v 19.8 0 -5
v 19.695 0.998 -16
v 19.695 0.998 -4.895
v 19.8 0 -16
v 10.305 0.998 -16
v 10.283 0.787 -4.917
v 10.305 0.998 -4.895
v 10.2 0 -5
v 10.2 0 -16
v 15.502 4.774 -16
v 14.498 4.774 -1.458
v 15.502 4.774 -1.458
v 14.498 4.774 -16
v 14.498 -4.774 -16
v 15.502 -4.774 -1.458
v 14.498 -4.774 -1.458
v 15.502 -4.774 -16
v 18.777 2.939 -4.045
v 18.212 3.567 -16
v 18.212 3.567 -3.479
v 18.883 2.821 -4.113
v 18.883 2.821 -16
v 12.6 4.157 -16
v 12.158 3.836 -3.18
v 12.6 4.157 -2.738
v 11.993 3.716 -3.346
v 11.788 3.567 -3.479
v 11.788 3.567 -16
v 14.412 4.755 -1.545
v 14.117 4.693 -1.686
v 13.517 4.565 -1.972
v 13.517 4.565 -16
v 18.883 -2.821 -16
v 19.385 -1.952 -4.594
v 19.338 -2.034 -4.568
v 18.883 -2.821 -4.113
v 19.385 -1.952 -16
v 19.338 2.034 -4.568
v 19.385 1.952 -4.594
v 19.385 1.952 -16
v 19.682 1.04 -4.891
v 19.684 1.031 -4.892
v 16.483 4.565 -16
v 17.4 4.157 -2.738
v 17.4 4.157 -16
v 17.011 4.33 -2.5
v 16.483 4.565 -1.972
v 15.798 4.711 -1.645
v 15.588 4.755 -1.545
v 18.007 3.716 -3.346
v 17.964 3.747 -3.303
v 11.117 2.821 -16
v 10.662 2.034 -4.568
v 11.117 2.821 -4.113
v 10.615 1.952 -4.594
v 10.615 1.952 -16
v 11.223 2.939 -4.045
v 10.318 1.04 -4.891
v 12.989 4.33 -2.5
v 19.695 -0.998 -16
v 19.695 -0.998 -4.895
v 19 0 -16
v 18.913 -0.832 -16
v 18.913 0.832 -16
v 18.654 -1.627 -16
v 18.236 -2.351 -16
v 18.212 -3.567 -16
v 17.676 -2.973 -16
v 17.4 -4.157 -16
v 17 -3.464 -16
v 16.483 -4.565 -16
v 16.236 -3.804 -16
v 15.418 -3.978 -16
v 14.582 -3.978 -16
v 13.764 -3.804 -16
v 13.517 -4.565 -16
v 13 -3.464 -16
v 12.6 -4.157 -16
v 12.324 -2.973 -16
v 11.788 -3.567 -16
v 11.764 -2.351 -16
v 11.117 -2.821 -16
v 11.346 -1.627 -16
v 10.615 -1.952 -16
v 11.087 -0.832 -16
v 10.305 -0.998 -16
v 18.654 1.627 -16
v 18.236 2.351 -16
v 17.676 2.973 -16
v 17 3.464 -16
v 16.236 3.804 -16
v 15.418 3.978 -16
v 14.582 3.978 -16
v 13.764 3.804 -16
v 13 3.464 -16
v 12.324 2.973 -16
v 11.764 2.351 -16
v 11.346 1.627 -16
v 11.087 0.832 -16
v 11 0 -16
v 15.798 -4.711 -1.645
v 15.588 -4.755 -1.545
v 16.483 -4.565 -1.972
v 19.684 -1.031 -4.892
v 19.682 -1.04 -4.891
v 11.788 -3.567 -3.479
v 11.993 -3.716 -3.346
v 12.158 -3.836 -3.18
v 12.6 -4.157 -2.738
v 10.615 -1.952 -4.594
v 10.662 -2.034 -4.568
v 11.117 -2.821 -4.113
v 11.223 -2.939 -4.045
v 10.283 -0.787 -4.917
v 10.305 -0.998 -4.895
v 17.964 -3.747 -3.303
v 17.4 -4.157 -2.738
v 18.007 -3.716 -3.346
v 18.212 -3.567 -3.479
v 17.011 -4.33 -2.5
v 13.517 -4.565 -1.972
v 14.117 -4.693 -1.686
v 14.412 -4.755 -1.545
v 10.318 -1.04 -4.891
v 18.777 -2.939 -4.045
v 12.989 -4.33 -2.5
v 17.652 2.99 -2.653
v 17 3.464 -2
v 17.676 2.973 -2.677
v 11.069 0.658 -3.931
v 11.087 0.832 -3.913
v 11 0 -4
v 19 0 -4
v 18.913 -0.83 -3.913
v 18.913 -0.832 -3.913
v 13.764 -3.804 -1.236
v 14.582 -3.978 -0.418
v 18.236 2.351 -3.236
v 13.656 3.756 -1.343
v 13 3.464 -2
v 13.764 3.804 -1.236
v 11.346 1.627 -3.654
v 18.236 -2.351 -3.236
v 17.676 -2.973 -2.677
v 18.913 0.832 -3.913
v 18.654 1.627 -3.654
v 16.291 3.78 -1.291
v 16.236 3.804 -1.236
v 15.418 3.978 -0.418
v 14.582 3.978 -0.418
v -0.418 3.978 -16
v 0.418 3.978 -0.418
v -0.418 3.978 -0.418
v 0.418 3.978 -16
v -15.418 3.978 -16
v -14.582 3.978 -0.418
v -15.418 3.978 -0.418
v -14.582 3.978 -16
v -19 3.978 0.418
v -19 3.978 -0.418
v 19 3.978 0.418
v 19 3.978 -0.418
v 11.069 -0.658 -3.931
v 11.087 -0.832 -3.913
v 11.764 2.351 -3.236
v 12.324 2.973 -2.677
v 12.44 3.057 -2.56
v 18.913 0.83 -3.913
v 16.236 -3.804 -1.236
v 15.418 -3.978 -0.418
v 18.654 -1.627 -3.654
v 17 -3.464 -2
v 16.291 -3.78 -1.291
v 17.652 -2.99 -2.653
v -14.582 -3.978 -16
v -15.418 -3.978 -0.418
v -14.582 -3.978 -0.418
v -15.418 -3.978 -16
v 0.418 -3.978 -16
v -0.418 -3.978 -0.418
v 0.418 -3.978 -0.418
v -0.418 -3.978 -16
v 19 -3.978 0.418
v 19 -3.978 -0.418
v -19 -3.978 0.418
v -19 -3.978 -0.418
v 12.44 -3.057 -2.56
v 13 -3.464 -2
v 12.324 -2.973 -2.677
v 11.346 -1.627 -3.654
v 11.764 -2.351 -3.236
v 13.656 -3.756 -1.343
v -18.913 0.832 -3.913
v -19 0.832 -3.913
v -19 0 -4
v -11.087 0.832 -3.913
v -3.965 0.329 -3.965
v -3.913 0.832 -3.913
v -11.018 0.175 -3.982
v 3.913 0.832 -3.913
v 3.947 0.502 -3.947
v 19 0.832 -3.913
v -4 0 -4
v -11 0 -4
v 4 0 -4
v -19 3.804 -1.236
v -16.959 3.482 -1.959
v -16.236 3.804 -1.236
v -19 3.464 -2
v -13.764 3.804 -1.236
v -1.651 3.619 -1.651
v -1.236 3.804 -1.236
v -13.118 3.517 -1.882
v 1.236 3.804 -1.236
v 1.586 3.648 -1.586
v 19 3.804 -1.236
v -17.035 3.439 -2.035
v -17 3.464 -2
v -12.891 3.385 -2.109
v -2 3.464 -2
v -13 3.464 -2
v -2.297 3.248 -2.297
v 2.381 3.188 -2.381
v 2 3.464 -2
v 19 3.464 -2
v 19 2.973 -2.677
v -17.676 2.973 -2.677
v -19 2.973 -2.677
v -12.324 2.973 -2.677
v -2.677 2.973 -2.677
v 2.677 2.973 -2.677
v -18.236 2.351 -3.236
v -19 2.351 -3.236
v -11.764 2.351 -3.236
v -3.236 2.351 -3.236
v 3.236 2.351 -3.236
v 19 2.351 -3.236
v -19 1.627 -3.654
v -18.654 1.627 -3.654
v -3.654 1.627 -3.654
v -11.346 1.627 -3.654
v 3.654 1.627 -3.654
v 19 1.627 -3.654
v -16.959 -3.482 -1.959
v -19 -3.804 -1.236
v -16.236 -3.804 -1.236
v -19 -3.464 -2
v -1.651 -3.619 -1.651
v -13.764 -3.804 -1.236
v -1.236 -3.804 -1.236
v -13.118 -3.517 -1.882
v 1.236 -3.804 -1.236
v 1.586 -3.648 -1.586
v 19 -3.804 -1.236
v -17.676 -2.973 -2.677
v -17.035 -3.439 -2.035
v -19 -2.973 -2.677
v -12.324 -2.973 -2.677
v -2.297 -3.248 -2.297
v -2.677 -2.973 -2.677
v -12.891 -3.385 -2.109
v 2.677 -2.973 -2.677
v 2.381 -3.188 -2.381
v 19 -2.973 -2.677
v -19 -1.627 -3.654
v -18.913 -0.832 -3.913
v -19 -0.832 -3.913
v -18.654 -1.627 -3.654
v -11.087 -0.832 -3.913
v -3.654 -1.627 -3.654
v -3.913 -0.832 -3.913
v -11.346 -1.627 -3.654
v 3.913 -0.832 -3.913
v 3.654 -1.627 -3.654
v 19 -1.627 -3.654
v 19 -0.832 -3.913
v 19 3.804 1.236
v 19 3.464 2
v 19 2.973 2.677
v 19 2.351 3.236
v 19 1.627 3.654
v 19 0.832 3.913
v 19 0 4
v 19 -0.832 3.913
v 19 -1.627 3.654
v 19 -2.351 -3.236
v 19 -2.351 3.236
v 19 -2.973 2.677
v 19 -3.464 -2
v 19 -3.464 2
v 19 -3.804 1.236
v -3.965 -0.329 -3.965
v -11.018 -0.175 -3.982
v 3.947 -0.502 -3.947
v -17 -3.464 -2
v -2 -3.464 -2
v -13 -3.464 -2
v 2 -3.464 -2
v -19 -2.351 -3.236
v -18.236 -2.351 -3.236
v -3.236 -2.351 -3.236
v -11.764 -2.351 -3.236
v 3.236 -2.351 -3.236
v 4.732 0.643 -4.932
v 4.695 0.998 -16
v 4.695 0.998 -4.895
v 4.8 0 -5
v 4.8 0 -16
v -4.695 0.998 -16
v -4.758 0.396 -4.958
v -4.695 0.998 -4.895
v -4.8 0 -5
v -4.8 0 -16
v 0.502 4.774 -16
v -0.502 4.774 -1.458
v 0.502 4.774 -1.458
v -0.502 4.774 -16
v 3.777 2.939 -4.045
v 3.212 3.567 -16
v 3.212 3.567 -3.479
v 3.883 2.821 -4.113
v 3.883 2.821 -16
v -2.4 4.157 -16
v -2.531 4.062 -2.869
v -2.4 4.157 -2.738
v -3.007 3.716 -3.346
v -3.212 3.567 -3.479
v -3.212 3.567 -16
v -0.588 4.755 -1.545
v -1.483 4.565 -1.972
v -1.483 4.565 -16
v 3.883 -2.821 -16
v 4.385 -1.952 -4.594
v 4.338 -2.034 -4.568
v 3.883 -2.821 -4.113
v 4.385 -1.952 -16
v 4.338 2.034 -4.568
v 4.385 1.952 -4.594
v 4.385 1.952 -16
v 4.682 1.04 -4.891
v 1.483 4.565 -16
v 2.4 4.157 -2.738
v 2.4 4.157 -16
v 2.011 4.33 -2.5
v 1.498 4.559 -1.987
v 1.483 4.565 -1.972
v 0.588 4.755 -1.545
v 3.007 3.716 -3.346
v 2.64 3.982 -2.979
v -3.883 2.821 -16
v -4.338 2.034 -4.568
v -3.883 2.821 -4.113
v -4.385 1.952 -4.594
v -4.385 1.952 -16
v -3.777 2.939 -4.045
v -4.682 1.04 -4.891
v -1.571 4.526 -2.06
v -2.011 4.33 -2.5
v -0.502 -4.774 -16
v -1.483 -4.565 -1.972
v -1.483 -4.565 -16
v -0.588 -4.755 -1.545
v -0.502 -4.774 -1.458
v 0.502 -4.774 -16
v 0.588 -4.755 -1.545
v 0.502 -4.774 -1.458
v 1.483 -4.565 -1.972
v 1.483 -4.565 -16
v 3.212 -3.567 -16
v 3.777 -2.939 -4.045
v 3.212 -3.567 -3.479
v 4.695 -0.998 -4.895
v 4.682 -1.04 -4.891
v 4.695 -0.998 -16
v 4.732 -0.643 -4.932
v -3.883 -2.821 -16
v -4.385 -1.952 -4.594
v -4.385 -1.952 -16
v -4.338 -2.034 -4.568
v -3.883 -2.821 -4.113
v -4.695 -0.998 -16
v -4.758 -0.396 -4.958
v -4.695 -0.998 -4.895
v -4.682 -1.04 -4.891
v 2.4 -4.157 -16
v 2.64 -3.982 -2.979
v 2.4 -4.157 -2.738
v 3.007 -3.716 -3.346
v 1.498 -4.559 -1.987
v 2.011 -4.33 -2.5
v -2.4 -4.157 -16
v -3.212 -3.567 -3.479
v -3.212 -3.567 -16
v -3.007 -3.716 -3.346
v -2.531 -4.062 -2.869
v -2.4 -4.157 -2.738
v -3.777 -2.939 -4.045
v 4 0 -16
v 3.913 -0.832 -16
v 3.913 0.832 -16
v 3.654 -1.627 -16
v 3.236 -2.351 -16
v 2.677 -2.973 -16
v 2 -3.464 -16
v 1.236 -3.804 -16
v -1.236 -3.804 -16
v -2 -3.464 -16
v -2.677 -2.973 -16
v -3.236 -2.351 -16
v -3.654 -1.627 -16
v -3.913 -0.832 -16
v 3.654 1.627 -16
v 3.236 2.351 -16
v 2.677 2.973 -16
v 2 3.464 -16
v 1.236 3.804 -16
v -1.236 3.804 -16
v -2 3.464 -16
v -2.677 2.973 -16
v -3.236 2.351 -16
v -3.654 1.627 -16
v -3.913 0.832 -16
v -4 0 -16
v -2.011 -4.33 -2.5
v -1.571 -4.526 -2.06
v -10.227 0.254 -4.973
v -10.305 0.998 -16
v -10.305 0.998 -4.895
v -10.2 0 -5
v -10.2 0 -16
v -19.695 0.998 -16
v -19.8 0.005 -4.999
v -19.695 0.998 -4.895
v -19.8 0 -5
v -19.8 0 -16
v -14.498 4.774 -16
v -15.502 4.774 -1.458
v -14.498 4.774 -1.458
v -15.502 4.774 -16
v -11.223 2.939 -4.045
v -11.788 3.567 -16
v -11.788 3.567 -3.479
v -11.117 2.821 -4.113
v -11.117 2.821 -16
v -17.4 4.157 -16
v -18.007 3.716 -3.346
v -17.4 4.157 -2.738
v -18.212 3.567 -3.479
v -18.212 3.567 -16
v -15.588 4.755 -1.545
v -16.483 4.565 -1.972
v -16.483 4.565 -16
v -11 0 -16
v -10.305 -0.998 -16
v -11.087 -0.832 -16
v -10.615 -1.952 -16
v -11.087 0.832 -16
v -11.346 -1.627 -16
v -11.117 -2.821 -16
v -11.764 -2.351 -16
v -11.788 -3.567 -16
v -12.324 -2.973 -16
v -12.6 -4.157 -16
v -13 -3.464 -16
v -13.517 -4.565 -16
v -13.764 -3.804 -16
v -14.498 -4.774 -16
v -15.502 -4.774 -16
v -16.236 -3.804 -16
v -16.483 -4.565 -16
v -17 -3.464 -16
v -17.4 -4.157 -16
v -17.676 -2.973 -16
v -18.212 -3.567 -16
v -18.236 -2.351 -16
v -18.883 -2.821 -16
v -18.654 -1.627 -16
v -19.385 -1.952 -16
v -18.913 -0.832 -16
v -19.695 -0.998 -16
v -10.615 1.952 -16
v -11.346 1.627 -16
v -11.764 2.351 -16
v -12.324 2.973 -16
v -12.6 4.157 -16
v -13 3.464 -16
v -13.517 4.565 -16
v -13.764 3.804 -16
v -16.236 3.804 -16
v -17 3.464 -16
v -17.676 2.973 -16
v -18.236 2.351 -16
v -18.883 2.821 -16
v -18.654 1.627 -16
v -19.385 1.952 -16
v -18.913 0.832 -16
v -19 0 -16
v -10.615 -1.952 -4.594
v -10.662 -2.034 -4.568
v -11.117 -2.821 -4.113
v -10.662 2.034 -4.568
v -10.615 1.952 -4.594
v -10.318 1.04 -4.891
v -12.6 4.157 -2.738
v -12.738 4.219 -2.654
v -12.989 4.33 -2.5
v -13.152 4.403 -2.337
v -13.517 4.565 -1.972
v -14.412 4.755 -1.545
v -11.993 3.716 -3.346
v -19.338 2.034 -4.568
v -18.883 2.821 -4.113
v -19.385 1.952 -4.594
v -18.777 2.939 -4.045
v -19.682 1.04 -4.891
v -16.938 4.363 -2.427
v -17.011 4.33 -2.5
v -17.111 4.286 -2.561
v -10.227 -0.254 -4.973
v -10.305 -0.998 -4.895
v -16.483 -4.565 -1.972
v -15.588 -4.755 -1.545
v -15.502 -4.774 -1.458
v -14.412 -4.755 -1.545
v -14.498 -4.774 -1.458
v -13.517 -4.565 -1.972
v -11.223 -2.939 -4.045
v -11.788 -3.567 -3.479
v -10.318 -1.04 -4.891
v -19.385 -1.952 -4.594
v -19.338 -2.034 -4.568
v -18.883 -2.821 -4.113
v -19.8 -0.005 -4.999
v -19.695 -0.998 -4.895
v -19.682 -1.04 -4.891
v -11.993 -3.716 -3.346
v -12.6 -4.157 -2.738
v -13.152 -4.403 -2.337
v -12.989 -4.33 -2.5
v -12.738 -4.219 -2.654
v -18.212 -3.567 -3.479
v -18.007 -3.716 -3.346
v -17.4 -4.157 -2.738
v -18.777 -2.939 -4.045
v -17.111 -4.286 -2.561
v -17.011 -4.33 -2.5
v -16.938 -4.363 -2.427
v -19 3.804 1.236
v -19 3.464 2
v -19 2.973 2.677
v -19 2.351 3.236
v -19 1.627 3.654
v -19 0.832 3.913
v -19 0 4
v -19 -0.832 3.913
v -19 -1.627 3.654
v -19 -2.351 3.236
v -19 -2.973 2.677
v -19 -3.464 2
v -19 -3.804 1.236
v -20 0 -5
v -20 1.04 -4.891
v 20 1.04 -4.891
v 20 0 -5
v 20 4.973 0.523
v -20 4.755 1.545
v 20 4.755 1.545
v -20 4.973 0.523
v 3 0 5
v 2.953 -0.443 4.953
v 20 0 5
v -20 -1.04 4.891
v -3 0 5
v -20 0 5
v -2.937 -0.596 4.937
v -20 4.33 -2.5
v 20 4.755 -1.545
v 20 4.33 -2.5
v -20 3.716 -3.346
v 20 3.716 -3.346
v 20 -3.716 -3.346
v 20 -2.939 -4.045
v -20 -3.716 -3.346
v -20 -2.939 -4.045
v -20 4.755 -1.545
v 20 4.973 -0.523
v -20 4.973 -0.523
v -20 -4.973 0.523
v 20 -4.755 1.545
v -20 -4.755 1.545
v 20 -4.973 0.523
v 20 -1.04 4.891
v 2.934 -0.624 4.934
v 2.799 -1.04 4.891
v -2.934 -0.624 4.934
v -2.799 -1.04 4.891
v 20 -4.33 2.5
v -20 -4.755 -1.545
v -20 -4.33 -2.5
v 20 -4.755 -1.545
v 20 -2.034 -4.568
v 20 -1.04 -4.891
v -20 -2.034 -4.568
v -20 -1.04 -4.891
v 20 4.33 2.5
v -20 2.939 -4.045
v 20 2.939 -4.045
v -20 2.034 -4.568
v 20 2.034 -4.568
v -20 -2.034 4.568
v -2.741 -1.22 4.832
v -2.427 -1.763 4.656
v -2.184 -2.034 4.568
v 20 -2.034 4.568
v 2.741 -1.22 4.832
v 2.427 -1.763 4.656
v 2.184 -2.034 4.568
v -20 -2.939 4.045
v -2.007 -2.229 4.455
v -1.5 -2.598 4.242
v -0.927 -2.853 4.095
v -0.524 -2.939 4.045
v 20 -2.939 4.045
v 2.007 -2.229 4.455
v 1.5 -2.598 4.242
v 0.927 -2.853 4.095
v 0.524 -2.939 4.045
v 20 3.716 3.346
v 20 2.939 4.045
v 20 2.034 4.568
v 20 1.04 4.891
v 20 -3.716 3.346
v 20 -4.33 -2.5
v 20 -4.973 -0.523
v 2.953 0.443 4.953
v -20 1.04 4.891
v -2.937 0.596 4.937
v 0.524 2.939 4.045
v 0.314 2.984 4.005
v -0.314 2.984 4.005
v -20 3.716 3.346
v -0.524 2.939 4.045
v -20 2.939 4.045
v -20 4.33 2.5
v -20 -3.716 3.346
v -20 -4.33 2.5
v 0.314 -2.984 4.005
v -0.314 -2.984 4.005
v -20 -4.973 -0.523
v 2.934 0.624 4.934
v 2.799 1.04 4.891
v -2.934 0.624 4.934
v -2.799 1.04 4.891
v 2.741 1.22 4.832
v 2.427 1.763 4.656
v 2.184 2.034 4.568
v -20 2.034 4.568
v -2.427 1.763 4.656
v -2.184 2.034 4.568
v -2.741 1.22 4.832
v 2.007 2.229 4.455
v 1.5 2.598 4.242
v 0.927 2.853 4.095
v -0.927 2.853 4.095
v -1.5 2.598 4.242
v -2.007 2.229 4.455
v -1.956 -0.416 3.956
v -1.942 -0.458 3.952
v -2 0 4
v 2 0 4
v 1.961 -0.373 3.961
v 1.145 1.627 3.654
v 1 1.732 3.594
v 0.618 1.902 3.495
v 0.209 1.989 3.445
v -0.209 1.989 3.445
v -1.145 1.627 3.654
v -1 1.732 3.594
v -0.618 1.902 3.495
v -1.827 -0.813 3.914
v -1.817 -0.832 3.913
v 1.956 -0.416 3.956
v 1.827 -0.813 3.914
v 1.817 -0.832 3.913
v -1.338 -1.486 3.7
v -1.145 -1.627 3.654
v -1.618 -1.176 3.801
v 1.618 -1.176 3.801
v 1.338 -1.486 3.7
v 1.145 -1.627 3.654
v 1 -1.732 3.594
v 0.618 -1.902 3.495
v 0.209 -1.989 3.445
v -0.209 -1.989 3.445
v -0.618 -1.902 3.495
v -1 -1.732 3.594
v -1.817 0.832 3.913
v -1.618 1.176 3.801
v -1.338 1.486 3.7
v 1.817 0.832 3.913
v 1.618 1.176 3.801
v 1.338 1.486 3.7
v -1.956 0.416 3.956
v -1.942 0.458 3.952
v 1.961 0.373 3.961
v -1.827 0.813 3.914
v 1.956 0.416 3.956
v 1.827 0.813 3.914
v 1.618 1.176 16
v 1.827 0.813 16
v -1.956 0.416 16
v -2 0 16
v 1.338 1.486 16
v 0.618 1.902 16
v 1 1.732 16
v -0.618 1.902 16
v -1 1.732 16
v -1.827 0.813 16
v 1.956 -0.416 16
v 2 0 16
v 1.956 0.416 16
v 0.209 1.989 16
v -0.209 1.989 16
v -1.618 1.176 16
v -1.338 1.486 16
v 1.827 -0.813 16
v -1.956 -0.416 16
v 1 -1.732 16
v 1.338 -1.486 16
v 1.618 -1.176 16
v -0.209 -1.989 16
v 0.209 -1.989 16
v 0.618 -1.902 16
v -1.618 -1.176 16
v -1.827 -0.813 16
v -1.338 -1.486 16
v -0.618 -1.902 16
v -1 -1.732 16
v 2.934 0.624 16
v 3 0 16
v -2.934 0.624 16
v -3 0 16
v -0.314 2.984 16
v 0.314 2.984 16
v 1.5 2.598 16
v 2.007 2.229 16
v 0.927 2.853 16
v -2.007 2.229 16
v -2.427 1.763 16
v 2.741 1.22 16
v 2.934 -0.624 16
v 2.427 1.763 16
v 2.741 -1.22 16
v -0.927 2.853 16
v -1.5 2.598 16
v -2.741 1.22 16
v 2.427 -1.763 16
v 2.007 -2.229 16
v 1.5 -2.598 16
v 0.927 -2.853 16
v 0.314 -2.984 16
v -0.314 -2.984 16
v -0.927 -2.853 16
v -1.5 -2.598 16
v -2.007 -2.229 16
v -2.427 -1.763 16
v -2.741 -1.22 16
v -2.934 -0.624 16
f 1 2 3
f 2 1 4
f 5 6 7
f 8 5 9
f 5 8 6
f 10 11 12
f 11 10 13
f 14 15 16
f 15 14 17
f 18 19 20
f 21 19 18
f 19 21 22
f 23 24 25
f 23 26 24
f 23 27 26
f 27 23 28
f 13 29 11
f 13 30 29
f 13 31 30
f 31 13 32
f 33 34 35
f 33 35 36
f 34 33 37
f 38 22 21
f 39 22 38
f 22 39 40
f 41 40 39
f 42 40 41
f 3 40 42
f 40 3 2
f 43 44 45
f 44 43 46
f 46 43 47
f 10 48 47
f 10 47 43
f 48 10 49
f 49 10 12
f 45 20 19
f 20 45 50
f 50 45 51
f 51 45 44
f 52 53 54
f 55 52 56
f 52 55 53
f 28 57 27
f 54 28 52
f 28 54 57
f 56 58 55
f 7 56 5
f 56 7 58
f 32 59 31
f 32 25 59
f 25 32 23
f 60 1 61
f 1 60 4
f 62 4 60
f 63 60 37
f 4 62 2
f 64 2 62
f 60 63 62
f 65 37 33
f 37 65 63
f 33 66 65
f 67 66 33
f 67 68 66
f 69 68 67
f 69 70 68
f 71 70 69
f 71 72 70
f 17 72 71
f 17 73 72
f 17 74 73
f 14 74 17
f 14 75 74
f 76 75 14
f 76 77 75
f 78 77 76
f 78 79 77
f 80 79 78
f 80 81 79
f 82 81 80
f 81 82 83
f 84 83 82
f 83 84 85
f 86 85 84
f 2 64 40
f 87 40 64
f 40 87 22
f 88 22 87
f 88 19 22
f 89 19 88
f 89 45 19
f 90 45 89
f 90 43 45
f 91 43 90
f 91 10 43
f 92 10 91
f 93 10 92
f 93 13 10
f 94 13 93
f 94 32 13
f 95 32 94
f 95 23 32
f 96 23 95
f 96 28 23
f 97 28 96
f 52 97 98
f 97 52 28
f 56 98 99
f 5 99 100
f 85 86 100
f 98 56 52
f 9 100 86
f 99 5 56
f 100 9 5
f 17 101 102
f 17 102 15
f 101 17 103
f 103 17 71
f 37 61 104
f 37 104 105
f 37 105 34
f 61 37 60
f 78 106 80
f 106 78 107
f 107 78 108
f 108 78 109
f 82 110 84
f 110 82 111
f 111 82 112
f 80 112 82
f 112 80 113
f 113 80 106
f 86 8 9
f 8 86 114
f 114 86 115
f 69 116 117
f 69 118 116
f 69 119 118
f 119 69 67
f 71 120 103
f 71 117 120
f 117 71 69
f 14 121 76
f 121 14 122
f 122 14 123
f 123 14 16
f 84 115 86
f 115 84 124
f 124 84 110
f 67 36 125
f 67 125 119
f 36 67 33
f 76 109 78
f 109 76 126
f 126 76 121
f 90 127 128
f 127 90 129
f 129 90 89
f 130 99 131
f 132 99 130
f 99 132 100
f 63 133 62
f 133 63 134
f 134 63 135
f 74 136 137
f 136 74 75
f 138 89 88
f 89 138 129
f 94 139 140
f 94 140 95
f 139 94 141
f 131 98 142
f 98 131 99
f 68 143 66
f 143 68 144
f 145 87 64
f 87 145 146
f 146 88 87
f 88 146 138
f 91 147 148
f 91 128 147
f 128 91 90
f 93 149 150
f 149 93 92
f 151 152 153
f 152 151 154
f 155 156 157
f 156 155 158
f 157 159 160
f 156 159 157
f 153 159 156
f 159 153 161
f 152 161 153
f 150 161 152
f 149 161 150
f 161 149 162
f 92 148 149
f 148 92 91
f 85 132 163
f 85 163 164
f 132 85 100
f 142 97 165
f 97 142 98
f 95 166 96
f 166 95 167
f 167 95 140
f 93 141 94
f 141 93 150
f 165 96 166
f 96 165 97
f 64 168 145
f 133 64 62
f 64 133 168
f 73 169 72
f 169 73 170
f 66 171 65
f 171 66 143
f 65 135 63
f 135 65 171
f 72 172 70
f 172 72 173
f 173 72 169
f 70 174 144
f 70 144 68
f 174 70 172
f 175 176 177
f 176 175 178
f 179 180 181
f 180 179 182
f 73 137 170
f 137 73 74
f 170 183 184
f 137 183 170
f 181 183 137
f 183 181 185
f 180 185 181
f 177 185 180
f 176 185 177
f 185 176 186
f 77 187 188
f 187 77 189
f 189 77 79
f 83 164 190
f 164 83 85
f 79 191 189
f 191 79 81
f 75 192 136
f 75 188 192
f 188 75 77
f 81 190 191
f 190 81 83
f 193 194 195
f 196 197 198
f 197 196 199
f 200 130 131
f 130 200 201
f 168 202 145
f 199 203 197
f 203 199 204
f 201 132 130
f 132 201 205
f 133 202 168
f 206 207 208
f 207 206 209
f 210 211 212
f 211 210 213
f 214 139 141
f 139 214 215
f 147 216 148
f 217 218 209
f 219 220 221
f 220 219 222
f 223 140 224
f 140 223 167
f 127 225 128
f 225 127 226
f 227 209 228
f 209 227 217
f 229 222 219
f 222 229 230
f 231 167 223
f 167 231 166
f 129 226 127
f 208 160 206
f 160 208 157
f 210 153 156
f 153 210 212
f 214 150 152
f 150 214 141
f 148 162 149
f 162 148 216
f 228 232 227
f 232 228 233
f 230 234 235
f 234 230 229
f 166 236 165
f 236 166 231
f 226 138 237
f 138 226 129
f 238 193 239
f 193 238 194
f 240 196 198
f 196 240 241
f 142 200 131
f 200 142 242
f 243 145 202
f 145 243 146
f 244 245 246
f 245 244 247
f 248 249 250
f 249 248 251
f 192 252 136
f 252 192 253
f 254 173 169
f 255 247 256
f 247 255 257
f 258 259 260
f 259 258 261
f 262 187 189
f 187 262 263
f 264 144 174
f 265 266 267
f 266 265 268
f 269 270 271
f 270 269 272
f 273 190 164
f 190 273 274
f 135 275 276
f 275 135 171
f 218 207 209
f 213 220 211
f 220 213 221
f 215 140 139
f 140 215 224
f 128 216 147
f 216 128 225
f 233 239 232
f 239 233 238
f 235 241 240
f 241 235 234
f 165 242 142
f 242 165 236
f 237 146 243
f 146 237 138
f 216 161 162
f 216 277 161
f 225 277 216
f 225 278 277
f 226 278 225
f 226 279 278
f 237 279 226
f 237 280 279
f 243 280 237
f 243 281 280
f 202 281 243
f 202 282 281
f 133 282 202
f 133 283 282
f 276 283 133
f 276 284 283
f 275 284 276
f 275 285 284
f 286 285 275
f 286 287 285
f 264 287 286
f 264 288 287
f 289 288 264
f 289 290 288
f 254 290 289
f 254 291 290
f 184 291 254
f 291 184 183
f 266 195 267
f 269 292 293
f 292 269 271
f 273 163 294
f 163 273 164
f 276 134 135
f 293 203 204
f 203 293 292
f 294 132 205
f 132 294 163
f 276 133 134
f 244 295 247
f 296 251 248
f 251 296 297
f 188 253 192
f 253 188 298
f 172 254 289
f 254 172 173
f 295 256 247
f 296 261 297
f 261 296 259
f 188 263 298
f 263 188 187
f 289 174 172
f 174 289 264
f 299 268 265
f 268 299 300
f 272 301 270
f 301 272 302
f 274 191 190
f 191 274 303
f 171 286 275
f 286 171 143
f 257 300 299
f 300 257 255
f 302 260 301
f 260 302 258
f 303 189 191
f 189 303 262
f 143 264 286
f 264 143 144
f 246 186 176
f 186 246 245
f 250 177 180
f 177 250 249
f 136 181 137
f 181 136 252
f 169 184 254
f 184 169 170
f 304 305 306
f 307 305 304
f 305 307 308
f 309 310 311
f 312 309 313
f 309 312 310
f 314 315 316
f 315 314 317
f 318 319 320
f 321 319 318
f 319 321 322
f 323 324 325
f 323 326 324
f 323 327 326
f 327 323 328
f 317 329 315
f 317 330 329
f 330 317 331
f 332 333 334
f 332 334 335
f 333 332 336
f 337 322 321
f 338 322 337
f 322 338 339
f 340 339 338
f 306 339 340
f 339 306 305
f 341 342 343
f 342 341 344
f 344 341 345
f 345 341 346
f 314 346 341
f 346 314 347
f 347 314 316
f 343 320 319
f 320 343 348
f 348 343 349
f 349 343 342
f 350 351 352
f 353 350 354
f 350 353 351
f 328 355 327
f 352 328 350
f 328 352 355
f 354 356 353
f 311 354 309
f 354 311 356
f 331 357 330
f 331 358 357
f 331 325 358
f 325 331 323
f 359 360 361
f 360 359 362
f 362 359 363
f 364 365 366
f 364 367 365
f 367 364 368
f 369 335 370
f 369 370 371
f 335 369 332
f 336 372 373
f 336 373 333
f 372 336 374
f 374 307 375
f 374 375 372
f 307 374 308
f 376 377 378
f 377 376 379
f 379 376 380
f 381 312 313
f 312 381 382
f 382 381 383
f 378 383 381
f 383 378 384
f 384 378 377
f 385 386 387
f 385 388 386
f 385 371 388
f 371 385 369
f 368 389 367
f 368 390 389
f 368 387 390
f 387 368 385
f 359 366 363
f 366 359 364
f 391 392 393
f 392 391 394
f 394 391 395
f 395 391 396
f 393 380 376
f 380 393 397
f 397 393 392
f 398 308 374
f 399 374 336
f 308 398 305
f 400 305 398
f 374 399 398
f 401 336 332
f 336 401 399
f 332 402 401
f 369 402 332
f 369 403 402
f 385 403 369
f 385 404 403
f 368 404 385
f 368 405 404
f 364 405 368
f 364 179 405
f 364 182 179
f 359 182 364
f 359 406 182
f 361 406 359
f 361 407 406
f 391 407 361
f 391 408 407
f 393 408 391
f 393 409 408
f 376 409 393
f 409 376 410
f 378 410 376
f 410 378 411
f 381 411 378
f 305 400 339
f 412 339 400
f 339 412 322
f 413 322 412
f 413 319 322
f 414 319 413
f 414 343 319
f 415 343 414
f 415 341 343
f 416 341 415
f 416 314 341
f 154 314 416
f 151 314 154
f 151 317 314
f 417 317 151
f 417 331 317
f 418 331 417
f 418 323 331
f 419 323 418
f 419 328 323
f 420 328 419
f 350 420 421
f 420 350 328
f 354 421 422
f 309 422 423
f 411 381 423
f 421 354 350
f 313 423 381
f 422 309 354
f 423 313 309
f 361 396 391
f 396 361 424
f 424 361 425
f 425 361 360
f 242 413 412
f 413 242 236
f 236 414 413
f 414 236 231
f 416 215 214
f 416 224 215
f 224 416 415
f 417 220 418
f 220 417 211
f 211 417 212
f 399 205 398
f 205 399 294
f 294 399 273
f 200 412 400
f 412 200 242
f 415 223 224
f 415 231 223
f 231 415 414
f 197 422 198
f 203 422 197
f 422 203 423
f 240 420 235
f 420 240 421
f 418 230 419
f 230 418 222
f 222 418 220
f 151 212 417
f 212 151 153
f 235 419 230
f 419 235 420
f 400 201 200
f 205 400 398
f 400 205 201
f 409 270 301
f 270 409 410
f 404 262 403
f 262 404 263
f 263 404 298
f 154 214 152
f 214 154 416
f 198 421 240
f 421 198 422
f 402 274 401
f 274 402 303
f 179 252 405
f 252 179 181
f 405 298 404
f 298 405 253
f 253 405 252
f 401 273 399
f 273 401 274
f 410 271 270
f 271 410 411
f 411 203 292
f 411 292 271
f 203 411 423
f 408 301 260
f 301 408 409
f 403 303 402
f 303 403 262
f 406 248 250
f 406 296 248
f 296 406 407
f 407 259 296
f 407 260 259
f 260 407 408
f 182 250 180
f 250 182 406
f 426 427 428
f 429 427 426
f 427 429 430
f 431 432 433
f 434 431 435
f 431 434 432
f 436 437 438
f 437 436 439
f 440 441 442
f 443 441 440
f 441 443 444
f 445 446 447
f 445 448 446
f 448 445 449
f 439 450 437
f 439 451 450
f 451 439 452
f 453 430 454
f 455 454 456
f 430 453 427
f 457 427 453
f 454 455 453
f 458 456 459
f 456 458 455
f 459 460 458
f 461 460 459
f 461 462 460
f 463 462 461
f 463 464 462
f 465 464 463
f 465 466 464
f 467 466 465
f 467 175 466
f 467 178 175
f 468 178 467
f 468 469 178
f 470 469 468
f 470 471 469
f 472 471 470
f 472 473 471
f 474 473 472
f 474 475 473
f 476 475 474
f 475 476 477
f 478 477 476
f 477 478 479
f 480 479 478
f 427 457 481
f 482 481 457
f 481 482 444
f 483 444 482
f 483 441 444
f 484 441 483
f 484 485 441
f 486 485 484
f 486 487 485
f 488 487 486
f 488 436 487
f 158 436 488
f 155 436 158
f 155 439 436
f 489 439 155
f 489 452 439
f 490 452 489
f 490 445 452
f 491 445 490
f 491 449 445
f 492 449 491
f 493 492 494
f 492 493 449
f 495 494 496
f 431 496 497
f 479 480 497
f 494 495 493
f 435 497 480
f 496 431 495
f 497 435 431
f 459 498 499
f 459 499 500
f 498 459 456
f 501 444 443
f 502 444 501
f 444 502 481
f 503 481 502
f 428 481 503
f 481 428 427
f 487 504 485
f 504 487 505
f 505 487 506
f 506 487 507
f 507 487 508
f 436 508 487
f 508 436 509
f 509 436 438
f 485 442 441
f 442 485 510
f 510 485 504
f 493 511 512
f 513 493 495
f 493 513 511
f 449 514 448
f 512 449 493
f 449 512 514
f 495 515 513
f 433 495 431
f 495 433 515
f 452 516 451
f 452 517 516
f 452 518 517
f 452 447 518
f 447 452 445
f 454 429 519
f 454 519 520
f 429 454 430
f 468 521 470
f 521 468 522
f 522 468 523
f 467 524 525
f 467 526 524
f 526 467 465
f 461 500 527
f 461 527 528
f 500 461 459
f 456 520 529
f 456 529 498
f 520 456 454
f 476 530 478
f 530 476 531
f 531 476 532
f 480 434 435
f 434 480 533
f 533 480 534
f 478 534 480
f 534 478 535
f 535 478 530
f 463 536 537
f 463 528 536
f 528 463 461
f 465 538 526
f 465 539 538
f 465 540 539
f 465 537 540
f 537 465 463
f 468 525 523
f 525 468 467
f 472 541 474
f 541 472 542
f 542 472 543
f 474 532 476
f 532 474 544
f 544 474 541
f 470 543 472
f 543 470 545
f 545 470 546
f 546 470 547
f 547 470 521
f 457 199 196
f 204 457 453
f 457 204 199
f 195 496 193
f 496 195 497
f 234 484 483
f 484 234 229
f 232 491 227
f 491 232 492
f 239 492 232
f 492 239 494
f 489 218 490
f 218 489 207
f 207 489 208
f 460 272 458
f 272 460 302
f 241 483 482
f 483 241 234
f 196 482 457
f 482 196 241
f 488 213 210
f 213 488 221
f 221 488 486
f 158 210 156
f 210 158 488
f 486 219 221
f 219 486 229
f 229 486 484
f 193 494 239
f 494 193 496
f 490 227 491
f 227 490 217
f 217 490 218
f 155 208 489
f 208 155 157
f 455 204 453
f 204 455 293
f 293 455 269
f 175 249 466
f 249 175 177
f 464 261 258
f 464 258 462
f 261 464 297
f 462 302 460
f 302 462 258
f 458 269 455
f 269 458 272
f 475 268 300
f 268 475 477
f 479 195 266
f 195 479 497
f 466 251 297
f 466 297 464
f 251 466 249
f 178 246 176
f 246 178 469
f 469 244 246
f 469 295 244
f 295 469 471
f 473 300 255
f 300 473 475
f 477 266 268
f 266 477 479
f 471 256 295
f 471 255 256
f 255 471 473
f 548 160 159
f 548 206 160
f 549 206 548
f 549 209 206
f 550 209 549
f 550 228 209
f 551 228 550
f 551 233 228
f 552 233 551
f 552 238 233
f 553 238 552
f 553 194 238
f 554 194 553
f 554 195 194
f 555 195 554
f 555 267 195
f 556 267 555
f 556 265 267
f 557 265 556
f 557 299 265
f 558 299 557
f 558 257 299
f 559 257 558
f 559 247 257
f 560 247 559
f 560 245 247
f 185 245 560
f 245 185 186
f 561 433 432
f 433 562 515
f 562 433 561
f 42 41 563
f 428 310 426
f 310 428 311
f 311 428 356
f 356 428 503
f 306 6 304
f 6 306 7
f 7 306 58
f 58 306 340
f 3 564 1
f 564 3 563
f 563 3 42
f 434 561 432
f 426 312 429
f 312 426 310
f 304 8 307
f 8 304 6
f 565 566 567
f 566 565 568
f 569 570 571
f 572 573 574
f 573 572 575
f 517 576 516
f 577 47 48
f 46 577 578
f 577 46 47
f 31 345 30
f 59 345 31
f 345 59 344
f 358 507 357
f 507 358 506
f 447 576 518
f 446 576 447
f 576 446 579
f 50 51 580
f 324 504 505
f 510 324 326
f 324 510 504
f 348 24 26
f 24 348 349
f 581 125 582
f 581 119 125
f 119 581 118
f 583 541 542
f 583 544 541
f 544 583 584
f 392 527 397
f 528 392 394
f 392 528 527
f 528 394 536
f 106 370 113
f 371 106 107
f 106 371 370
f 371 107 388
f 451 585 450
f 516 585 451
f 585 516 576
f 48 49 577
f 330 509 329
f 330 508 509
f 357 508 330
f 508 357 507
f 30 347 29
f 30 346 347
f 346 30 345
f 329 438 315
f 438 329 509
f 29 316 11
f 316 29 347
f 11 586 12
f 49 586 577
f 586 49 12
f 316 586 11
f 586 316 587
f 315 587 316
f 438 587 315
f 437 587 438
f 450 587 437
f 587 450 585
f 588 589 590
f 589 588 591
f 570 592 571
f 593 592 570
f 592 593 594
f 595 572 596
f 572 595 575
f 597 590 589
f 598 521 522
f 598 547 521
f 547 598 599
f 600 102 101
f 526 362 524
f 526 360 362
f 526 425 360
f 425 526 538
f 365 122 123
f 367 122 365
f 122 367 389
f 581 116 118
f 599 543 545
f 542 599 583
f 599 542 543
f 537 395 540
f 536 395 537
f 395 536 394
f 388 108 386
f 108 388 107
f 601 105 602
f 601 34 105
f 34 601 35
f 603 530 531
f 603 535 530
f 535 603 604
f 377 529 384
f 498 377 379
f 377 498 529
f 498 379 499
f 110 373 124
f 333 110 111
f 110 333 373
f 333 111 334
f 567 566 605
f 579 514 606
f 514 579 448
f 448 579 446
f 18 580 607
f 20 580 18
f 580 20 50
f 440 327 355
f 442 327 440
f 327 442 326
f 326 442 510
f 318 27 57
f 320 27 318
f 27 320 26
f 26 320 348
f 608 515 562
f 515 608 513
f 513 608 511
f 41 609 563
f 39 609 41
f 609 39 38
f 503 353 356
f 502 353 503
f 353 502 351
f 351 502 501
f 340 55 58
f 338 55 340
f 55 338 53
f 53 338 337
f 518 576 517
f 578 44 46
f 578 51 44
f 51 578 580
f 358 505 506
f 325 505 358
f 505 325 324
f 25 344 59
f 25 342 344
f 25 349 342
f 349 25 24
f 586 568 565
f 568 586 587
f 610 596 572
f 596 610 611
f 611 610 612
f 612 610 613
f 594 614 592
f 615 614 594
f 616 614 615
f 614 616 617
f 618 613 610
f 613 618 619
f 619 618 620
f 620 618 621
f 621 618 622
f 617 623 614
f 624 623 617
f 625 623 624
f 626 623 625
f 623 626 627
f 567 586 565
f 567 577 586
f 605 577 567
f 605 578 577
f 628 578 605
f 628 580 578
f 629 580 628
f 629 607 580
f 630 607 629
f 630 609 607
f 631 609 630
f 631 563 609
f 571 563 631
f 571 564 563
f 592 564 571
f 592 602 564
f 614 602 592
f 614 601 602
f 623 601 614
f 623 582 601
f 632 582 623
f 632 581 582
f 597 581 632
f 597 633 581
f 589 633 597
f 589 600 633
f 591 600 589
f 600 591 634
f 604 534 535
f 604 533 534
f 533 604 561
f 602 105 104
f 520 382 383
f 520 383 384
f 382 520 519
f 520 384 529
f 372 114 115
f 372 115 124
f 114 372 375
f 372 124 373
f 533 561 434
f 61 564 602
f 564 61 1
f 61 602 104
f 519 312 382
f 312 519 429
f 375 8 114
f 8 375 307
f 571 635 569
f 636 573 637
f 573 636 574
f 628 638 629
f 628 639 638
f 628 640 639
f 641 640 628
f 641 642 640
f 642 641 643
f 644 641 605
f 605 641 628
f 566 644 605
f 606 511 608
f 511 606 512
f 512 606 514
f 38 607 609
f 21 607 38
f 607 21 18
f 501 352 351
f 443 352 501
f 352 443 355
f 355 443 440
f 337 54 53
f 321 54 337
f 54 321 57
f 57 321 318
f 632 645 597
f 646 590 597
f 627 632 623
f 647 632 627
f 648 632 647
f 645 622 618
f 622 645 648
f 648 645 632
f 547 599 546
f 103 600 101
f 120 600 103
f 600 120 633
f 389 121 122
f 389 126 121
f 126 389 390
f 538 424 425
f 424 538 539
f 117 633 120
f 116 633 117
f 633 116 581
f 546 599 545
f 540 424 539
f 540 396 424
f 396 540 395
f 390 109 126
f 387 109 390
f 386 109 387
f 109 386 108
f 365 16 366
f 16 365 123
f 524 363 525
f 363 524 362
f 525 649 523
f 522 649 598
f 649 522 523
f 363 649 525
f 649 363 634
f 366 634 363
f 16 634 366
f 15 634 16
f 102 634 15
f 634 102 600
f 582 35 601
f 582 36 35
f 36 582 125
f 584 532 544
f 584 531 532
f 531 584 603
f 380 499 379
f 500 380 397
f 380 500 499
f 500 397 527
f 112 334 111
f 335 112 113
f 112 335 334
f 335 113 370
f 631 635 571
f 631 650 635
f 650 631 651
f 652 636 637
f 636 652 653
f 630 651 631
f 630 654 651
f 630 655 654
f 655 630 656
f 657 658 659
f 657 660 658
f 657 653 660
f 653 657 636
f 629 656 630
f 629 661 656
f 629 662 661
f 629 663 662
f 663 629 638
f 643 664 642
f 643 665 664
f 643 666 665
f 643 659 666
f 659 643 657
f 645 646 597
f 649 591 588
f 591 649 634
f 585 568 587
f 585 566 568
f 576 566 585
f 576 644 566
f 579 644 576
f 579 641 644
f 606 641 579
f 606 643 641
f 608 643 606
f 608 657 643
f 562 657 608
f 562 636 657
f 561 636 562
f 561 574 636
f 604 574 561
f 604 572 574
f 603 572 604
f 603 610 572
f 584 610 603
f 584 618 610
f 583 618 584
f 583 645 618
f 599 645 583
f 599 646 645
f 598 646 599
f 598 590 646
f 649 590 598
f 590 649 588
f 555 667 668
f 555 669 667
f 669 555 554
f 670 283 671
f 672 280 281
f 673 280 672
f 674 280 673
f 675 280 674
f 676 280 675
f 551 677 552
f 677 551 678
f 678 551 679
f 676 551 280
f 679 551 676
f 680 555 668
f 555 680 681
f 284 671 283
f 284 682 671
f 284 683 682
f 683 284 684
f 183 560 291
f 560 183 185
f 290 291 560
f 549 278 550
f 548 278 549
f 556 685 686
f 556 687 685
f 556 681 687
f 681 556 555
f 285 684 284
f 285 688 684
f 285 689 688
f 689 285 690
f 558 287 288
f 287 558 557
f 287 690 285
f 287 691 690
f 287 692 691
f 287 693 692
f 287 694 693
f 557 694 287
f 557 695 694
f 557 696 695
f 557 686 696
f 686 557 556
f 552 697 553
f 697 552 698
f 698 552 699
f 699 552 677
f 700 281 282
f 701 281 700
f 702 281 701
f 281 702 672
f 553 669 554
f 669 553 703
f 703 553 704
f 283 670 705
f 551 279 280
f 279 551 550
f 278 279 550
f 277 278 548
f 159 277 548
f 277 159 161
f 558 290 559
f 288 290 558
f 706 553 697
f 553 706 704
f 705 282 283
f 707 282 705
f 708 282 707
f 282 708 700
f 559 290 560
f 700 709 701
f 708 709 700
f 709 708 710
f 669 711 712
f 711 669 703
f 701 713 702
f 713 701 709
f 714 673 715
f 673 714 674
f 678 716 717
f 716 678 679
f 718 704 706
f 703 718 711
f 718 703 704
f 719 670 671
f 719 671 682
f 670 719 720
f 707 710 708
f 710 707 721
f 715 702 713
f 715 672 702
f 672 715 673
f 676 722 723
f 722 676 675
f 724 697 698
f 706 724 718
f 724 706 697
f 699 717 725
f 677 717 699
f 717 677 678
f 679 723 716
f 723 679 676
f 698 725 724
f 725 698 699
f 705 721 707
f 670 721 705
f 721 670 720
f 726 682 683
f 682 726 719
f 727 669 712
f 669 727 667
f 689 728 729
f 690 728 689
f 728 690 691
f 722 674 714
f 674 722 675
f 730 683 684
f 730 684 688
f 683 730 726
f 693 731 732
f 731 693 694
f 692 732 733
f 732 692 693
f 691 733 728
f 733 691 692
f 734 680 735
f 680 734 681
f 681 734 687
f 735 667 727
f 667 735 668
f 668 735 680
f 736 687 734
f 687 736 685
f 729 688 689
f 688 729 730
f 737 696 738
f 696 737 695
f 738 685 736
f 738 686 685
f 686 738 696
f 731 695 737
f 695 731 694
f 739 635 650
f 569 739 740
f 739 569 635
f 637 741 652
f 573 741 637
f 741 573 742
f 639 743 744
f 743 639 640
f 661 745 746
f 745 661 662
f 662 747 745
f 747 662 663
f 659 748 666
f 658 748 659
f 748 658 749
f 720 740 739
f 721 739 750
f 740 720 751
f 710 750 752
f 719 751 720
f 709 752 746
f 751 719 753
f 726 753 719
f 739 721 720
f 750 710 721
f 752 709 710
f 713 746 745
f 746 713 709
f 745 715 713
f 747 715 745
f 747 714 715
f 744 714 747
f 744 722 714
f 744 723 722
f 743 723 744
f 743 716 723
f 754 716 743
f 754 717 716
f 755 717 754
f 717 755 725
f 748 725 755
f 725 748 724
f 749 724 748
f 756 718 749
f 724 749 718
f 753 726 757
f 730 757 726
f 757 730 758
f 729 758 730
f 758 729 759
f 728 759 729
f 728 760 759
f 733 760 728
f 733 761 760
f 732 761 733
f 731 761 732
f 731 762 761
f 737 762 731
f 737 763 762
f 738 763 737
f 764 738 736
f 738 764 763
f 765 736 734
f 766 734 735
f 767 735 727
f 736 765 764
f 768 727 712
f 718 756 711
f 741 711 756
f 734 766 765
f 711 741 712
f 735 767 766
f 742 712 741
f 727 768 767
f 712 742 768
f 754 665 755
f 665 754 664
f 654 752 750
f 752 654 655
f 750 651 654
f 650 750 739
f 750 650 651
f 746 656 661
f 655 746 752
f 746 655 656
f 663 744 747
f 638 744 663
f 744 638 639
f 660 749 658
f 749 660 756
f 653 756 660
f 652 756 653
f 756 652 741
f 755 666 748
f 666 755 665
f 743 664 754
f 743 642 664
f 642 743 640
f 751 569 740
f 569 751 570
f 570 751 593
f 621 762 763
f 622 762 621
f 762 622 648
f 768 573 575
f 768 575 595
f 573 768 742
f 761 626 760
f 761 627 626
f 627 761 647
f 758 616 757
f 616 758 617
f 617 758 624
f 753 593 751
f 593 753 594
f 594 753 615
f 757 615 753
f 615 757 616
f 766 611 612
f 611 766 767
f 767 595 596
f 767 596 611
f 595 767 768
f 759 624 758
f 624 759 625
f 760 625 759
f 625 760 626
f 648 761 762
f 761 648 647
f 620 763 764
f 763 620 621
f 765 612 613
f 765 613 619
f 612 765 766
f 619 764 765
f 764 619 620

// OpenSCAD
union(){
  difference(){
    rotate([0, 90, 0]){
      cylinder(h=40, r=5, center=true, $fn=30);
    }
    rotate([0, 90, 0]){
      cylinder(h=38, r=4, center=true, $fn=30);
    }
    translate([0, 0, 0]){
      cylinder(h=10, r=2, center=true, $fn=30);
    }
    translate([0, 0, -5]){
      cylinder(h=10, r=4, center=true, $fn=30);
    }
    translate([15, 0, -5]){
      cylinder(h=10, r=4, center=true, $fn=30);
    }
    translate([-15, 0, -5]){
      cylinder(h=10, r=4, center=true, $fn=30);
    }
  }
  difference(){
    translate([0, 0, 8]){
      cylinder(h=16, r=3, center=true, $fn=30);
    }
    translate([0, 0, 8]){
      cylinder(h=17, r=2, center=true, $fn=30);
    }
    rotate([0, 90, 0]){
      cylinder(h=38, r=4, center=true, $fn=30);
    }
  }
  difference(){
    translate([15, 0, -8]){
      cylinder(h=16, r=4.8, center=true, $fn=30);
    }
    translate([15, 0, -8]){
      cylinder(h=17, r=4, center=true, $fn=30);
    }
    rotate([0, 90, 0]){
      cylinder(h=38, r=4, center=true, $fn=30);
    }
  }
  difference(){
    translate([0, 0, -8]){
      cylinder(h=16, r=4.8, center=true, $fn=30);
    }
    translate([0, 0, -8]){
      cylinder(h=17, r=4, center=true, $fn=30);
    }
    rotate([0, 90, 0]){
      cylinder(h=38, r=4, center=true, $fn=30);
    }
  }
  difference(){
    translate([-15, 0, -8]){
      cylinder(h=16, r=4.8, center=true, $fn=30);
    }
    translate([-15, 0, -8]){
      cylinder(h=17, r=4, center=true, $fn=30);
    }
    rotate([0, 90, 0]){
      cylinder(h=38, r=4, center=true, $fn=30);
    }
  }
}
 
